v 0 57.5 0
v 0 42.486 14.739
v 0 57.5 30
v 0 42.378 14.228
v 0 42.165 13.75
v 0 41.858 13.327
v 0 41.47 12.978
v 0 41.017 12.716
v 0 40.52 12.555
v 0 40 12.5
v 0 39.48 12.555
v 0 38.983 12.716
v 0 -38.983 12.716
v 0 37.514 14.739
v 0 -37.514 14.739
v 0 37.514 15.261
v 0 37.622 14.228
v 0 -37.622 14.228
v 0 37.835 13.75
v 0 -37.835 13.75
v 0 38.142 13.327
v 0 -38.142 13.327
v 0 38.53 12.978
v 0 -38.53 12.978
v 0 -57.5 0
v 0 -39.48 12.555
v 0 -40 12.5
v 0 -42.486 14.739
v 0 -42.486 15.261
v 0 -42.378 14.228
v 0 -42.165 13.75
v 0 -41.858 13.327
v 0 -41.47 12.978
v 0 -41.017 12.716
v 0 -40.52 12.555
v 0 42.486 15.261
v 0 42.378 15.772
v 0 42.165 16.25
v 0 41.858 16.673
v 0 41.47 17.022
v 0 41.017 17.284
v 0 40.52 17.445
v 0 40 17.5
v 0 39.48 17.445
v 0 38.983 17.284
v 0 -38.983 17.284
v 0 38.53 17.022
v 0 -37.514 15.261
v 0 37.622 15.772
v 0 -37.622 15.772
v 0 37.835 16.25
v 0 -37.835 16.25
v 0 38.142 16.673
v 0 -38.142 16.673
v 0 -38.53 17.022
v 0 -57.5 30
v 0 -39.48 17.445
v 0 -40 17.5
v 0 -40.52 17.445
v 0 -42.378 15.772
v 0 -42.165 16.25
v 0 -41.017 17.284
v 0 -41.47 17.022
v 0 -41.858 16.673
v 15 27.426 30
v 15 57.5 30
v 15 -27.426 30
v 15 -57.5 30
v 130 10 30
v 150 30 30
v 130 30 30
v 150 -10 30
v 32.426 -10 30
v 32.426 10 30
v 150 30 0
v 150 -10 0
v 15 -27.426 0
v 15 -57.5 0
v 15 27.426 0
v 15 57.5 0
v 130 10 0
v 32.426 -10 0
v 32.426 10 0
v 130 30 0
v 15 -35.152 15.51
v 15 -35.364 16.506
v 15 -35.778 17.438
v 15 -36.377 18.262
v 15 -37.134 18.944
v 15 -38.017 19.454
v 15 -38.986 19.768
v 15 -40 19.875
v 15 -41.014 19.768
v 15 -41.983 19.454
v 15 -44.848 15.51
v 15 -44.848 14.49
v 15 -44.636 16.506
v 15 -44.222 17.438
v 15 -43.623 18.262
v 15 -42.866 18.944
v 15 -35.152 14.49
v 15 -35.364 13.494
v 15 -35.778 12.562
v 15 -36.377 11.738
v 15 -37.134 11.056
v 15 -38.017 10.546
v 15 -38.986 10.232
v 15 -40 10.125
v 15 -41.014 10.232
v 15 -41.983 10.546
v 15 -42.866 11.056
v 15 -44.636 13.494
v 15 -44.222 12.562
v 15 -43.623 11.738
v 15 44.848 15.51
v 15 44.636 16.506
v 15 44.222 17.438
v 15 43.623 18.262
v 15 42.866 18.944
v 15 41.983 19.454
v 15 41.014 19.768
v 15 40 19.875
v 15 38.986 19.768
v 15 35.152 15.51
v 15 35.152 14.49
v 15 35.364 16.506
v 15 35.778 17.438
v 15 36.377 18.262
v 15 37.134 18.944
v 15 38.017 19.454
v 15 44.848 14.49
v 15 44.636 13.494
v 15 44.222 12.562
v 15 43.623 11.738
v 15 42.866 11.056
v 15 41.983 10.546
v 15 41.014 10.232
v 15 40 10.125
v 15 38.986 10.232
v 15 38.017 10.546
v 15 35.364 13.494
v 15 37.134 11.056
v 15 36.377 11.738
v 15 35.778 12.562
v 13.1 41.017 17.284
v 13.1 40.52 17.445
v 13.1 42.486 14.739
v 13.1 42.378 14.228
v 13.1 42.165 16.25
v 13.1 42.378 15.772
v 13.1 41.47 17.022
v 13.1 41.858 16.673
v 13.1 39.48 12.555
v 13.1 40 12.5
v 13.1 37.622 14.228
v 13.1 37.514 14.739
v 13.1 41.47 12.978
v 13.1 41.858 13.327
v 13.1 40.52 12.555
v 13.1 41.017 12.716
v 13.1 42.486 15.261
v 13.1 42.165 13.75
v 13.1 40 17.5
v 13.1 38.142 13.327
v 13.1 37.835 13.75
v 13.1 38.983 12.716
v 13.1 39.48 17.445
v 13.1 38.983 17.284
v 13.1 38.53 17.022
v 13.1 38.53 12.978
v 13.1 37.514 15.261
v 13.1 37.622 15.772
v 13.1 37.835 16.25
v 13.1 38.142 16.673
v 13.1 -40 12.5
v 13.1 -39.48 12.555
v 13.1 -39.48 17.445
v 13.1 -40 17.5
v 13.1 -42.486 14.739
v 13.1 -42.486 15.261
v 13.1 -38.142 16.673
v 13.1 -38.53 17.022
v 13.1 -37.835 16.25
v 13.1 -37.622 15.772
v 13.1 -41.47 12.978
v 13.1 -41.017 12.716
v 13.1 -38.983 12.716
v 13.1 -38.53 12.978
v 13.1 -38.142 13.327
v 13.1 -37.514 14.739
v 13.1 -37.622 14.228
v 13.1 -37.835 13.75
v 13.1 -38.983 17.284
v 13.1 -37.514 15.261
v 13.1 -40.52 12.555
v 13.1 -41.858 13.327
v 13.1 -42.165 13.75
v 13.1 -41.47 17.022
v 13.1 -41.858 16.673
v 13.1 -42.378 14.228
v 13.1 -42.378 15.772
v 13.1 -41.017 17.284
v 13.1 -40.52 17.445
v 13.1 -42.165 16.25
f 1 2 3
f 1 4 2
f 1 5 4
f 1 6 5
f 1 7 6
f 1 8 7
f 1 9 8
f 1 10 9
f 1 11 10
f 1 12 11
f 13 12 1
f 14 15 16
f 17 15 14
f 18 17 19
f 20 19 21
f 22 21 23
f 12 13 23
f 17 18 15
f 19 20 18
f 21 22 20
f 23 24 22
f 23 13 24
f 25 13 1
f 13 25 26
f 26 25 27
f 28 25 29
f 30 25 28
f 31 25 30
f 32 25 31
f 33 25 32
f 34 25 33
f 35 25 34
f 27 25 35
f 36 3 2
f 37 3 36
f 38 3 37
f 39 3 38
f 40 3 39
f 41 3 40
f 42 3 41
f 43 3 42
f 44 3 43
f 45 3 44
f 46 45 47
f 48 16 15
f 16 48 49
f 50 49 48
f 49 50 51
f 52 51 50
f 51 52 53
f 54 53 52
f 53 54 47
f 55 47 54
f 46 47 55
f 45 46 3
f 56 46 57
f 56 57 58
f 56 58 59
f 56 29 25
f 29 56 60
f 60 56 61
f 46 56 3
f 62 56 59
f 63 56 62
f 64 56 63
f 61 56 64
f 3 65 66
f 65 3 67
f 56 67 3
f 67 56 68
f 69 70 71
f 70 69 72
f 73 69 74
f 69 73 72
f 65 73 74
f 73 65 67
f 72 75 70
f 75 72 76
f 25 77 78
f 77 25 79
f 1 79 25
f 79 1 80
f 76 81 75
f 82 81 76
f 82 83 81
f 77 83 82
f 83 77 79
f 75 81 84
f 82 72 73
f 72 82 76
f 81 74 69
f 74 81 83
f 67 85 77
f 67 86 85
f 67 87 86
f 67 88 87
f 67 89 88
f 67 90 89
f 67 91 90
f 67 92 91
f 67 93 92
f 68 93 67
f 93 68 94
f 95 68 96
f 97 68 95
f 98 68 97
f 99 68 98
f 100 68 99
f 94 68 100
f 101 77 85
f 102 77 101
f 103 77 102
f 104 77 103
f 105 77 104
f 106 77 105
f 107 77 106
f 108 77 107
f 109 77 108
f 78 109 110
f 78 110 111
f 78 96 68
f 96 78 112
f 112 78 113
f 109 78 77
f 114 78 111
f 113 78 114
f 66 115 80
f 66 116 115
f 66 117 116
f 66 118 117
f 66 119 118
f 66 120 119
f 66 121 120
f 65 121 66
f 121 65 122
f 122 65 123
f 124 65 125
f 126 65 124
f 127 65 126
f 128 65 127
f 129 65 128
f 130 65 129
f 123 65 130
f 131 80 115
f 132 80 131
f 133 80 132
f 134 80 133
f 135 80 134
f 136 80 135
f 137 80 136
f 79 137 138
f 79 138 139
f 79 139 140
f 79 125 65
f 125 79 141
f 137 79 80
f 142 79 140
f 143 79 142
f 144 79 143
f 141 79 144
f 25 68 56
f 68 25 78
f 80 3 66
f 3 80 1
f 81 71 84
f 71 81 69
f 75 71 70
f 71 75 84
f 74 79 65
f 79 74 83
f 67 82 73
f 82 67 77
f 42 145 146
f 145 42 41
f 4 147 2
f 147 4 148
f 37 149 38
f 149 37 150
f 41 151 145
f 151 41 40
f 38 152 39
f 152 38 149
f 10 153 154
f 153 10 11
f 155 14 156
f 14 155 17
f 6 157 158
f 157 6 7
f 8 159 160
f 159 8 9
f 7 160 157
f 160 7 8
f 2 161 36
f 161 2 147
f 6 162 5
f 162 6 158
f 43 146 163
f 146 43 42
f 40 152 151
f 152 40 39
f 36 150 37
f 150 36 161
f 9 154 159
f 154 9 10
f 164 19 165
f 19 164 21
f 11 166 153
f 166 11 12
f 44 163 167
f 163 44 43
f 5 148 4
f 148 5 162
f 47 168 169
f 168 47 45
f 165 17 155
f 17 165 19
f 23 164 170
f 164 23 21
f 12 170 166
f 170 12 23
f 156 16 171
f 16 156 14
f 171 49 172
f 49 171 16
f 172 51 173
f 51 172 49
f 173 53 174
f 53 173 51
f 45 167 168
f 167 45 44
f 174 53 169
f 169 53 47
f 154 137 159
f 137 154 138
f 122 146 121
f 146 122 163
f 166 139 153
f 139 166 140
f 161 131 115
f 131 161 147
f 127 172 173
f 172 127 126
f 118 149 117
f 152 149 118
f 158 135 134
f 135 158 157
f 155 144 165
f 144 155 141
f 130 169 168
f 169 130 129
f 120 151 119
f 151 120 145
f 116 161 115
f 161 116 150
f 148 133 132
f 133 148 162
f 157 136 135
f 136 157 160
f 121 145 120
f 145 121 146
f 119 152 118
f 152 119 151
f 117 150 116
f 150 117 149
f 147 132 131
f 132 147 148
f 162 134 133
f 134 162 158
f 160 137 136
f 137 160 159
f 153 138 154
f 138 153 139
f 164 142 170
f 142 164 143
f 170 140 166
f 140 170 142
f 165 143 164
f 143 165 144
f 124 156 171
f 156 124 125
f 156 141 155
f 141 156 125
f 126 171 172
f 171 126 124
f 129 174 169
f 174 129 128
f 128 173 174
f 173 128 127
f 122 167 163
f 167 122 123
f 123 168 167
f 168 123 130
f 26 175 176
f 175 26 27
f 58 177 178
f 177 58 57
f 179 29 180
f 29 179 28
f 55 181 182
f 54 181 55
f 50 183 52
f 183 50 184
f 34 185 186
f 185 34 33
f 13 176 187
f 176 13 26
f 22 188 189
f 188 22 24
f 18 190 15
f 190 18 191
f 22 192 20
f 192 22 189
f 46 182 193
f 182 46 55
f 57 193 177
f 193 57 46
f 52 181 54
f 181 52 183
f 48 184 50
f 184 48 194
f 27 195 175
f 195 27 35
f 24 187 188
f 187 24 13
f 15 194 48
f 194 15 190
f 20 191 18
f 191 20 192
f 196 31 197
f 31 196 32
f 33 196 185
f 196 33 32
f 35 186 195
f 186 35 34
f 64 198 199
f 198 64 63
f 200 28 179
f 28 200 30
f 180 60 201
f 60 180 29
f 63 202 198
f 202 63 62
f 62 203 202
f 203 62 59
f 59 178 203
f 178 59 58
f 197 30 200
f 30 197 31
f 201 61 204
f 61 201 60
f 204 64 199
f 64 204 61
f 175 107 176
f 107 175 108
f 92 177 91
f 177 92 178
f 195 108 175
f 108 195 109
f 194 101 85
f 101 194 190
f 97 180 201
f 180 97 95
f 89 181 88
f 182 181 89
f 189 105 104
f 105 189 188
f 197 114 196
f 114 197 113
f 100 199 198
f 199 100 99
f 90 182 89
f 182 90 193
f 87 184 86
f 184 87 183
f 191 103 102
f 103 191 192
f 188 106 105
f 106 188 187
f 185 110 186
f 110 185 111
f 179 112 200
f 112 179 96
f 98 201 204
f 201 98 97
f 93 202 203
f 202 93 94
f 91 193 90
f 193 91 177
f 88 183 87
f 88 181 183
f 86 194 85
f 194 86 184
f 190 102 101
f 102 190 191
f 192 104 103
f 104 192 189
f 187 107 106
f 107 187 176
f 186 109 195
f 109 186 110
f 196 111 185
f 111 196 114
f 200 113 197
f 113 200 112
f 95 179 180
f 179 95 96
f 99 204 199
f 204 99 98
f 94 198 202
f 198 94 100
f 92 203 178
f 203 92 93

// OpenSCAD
// small hose holder
$fs = 0.2;

length=150;
bar_size=50;
width=20;
height=30;
holder_height=20;
holder_width=20;
flange_width=115;
flange_length=15;
screw_size=5;
screw_head=10;
screw_offset=40;
screw_head_taper_depth=4;

difference() {
	//Create the Main Body
	union(){
		translate([0,-width/2, 0]) cube([length, width, height]);
		translate([0,-flange_width/2, 0]) cube([flange_length, flange_width, height]);
    translate([length-holder_width,-width/2,0]) cube([holder_width, width+holder_height, height]);
    
    rotate([0,0,45])
      translate([width/2, -width, 0]) 
        cube([width, width*1.5, height]);
    
    rotate([0,0,-45])
      translate([width/2, -width/2, 0]) 
        cube([width, width*1.5, height]);
	}
	
	rotate([0,90,0]) translate([-height/2, screw_offset, -.1]) 
    cylinder(r=screw_size/2, h=flange_length+.2);
  rotate([0,90,0]) translate([-height/2, screw_offset, flange_length-screw_head_taper_depth+.1]) 
    cylinder(r2=screw_head/2, r1=0, h=screw_head_taper_depth);
  
	rotate([0,90,0]) translate([-height/2, -screw_offset, -.1]) 
    cylinder(r=screw_size/2, h=flange_length+.2);
  rotate([0,90,0]) translate([-height/2, -screw_offset, flange_length-screw_head_taper_depth+.1]) 
    cylinder(r2=screw_head/2, r1=0, h=screw_head_taper_depth);
}	
